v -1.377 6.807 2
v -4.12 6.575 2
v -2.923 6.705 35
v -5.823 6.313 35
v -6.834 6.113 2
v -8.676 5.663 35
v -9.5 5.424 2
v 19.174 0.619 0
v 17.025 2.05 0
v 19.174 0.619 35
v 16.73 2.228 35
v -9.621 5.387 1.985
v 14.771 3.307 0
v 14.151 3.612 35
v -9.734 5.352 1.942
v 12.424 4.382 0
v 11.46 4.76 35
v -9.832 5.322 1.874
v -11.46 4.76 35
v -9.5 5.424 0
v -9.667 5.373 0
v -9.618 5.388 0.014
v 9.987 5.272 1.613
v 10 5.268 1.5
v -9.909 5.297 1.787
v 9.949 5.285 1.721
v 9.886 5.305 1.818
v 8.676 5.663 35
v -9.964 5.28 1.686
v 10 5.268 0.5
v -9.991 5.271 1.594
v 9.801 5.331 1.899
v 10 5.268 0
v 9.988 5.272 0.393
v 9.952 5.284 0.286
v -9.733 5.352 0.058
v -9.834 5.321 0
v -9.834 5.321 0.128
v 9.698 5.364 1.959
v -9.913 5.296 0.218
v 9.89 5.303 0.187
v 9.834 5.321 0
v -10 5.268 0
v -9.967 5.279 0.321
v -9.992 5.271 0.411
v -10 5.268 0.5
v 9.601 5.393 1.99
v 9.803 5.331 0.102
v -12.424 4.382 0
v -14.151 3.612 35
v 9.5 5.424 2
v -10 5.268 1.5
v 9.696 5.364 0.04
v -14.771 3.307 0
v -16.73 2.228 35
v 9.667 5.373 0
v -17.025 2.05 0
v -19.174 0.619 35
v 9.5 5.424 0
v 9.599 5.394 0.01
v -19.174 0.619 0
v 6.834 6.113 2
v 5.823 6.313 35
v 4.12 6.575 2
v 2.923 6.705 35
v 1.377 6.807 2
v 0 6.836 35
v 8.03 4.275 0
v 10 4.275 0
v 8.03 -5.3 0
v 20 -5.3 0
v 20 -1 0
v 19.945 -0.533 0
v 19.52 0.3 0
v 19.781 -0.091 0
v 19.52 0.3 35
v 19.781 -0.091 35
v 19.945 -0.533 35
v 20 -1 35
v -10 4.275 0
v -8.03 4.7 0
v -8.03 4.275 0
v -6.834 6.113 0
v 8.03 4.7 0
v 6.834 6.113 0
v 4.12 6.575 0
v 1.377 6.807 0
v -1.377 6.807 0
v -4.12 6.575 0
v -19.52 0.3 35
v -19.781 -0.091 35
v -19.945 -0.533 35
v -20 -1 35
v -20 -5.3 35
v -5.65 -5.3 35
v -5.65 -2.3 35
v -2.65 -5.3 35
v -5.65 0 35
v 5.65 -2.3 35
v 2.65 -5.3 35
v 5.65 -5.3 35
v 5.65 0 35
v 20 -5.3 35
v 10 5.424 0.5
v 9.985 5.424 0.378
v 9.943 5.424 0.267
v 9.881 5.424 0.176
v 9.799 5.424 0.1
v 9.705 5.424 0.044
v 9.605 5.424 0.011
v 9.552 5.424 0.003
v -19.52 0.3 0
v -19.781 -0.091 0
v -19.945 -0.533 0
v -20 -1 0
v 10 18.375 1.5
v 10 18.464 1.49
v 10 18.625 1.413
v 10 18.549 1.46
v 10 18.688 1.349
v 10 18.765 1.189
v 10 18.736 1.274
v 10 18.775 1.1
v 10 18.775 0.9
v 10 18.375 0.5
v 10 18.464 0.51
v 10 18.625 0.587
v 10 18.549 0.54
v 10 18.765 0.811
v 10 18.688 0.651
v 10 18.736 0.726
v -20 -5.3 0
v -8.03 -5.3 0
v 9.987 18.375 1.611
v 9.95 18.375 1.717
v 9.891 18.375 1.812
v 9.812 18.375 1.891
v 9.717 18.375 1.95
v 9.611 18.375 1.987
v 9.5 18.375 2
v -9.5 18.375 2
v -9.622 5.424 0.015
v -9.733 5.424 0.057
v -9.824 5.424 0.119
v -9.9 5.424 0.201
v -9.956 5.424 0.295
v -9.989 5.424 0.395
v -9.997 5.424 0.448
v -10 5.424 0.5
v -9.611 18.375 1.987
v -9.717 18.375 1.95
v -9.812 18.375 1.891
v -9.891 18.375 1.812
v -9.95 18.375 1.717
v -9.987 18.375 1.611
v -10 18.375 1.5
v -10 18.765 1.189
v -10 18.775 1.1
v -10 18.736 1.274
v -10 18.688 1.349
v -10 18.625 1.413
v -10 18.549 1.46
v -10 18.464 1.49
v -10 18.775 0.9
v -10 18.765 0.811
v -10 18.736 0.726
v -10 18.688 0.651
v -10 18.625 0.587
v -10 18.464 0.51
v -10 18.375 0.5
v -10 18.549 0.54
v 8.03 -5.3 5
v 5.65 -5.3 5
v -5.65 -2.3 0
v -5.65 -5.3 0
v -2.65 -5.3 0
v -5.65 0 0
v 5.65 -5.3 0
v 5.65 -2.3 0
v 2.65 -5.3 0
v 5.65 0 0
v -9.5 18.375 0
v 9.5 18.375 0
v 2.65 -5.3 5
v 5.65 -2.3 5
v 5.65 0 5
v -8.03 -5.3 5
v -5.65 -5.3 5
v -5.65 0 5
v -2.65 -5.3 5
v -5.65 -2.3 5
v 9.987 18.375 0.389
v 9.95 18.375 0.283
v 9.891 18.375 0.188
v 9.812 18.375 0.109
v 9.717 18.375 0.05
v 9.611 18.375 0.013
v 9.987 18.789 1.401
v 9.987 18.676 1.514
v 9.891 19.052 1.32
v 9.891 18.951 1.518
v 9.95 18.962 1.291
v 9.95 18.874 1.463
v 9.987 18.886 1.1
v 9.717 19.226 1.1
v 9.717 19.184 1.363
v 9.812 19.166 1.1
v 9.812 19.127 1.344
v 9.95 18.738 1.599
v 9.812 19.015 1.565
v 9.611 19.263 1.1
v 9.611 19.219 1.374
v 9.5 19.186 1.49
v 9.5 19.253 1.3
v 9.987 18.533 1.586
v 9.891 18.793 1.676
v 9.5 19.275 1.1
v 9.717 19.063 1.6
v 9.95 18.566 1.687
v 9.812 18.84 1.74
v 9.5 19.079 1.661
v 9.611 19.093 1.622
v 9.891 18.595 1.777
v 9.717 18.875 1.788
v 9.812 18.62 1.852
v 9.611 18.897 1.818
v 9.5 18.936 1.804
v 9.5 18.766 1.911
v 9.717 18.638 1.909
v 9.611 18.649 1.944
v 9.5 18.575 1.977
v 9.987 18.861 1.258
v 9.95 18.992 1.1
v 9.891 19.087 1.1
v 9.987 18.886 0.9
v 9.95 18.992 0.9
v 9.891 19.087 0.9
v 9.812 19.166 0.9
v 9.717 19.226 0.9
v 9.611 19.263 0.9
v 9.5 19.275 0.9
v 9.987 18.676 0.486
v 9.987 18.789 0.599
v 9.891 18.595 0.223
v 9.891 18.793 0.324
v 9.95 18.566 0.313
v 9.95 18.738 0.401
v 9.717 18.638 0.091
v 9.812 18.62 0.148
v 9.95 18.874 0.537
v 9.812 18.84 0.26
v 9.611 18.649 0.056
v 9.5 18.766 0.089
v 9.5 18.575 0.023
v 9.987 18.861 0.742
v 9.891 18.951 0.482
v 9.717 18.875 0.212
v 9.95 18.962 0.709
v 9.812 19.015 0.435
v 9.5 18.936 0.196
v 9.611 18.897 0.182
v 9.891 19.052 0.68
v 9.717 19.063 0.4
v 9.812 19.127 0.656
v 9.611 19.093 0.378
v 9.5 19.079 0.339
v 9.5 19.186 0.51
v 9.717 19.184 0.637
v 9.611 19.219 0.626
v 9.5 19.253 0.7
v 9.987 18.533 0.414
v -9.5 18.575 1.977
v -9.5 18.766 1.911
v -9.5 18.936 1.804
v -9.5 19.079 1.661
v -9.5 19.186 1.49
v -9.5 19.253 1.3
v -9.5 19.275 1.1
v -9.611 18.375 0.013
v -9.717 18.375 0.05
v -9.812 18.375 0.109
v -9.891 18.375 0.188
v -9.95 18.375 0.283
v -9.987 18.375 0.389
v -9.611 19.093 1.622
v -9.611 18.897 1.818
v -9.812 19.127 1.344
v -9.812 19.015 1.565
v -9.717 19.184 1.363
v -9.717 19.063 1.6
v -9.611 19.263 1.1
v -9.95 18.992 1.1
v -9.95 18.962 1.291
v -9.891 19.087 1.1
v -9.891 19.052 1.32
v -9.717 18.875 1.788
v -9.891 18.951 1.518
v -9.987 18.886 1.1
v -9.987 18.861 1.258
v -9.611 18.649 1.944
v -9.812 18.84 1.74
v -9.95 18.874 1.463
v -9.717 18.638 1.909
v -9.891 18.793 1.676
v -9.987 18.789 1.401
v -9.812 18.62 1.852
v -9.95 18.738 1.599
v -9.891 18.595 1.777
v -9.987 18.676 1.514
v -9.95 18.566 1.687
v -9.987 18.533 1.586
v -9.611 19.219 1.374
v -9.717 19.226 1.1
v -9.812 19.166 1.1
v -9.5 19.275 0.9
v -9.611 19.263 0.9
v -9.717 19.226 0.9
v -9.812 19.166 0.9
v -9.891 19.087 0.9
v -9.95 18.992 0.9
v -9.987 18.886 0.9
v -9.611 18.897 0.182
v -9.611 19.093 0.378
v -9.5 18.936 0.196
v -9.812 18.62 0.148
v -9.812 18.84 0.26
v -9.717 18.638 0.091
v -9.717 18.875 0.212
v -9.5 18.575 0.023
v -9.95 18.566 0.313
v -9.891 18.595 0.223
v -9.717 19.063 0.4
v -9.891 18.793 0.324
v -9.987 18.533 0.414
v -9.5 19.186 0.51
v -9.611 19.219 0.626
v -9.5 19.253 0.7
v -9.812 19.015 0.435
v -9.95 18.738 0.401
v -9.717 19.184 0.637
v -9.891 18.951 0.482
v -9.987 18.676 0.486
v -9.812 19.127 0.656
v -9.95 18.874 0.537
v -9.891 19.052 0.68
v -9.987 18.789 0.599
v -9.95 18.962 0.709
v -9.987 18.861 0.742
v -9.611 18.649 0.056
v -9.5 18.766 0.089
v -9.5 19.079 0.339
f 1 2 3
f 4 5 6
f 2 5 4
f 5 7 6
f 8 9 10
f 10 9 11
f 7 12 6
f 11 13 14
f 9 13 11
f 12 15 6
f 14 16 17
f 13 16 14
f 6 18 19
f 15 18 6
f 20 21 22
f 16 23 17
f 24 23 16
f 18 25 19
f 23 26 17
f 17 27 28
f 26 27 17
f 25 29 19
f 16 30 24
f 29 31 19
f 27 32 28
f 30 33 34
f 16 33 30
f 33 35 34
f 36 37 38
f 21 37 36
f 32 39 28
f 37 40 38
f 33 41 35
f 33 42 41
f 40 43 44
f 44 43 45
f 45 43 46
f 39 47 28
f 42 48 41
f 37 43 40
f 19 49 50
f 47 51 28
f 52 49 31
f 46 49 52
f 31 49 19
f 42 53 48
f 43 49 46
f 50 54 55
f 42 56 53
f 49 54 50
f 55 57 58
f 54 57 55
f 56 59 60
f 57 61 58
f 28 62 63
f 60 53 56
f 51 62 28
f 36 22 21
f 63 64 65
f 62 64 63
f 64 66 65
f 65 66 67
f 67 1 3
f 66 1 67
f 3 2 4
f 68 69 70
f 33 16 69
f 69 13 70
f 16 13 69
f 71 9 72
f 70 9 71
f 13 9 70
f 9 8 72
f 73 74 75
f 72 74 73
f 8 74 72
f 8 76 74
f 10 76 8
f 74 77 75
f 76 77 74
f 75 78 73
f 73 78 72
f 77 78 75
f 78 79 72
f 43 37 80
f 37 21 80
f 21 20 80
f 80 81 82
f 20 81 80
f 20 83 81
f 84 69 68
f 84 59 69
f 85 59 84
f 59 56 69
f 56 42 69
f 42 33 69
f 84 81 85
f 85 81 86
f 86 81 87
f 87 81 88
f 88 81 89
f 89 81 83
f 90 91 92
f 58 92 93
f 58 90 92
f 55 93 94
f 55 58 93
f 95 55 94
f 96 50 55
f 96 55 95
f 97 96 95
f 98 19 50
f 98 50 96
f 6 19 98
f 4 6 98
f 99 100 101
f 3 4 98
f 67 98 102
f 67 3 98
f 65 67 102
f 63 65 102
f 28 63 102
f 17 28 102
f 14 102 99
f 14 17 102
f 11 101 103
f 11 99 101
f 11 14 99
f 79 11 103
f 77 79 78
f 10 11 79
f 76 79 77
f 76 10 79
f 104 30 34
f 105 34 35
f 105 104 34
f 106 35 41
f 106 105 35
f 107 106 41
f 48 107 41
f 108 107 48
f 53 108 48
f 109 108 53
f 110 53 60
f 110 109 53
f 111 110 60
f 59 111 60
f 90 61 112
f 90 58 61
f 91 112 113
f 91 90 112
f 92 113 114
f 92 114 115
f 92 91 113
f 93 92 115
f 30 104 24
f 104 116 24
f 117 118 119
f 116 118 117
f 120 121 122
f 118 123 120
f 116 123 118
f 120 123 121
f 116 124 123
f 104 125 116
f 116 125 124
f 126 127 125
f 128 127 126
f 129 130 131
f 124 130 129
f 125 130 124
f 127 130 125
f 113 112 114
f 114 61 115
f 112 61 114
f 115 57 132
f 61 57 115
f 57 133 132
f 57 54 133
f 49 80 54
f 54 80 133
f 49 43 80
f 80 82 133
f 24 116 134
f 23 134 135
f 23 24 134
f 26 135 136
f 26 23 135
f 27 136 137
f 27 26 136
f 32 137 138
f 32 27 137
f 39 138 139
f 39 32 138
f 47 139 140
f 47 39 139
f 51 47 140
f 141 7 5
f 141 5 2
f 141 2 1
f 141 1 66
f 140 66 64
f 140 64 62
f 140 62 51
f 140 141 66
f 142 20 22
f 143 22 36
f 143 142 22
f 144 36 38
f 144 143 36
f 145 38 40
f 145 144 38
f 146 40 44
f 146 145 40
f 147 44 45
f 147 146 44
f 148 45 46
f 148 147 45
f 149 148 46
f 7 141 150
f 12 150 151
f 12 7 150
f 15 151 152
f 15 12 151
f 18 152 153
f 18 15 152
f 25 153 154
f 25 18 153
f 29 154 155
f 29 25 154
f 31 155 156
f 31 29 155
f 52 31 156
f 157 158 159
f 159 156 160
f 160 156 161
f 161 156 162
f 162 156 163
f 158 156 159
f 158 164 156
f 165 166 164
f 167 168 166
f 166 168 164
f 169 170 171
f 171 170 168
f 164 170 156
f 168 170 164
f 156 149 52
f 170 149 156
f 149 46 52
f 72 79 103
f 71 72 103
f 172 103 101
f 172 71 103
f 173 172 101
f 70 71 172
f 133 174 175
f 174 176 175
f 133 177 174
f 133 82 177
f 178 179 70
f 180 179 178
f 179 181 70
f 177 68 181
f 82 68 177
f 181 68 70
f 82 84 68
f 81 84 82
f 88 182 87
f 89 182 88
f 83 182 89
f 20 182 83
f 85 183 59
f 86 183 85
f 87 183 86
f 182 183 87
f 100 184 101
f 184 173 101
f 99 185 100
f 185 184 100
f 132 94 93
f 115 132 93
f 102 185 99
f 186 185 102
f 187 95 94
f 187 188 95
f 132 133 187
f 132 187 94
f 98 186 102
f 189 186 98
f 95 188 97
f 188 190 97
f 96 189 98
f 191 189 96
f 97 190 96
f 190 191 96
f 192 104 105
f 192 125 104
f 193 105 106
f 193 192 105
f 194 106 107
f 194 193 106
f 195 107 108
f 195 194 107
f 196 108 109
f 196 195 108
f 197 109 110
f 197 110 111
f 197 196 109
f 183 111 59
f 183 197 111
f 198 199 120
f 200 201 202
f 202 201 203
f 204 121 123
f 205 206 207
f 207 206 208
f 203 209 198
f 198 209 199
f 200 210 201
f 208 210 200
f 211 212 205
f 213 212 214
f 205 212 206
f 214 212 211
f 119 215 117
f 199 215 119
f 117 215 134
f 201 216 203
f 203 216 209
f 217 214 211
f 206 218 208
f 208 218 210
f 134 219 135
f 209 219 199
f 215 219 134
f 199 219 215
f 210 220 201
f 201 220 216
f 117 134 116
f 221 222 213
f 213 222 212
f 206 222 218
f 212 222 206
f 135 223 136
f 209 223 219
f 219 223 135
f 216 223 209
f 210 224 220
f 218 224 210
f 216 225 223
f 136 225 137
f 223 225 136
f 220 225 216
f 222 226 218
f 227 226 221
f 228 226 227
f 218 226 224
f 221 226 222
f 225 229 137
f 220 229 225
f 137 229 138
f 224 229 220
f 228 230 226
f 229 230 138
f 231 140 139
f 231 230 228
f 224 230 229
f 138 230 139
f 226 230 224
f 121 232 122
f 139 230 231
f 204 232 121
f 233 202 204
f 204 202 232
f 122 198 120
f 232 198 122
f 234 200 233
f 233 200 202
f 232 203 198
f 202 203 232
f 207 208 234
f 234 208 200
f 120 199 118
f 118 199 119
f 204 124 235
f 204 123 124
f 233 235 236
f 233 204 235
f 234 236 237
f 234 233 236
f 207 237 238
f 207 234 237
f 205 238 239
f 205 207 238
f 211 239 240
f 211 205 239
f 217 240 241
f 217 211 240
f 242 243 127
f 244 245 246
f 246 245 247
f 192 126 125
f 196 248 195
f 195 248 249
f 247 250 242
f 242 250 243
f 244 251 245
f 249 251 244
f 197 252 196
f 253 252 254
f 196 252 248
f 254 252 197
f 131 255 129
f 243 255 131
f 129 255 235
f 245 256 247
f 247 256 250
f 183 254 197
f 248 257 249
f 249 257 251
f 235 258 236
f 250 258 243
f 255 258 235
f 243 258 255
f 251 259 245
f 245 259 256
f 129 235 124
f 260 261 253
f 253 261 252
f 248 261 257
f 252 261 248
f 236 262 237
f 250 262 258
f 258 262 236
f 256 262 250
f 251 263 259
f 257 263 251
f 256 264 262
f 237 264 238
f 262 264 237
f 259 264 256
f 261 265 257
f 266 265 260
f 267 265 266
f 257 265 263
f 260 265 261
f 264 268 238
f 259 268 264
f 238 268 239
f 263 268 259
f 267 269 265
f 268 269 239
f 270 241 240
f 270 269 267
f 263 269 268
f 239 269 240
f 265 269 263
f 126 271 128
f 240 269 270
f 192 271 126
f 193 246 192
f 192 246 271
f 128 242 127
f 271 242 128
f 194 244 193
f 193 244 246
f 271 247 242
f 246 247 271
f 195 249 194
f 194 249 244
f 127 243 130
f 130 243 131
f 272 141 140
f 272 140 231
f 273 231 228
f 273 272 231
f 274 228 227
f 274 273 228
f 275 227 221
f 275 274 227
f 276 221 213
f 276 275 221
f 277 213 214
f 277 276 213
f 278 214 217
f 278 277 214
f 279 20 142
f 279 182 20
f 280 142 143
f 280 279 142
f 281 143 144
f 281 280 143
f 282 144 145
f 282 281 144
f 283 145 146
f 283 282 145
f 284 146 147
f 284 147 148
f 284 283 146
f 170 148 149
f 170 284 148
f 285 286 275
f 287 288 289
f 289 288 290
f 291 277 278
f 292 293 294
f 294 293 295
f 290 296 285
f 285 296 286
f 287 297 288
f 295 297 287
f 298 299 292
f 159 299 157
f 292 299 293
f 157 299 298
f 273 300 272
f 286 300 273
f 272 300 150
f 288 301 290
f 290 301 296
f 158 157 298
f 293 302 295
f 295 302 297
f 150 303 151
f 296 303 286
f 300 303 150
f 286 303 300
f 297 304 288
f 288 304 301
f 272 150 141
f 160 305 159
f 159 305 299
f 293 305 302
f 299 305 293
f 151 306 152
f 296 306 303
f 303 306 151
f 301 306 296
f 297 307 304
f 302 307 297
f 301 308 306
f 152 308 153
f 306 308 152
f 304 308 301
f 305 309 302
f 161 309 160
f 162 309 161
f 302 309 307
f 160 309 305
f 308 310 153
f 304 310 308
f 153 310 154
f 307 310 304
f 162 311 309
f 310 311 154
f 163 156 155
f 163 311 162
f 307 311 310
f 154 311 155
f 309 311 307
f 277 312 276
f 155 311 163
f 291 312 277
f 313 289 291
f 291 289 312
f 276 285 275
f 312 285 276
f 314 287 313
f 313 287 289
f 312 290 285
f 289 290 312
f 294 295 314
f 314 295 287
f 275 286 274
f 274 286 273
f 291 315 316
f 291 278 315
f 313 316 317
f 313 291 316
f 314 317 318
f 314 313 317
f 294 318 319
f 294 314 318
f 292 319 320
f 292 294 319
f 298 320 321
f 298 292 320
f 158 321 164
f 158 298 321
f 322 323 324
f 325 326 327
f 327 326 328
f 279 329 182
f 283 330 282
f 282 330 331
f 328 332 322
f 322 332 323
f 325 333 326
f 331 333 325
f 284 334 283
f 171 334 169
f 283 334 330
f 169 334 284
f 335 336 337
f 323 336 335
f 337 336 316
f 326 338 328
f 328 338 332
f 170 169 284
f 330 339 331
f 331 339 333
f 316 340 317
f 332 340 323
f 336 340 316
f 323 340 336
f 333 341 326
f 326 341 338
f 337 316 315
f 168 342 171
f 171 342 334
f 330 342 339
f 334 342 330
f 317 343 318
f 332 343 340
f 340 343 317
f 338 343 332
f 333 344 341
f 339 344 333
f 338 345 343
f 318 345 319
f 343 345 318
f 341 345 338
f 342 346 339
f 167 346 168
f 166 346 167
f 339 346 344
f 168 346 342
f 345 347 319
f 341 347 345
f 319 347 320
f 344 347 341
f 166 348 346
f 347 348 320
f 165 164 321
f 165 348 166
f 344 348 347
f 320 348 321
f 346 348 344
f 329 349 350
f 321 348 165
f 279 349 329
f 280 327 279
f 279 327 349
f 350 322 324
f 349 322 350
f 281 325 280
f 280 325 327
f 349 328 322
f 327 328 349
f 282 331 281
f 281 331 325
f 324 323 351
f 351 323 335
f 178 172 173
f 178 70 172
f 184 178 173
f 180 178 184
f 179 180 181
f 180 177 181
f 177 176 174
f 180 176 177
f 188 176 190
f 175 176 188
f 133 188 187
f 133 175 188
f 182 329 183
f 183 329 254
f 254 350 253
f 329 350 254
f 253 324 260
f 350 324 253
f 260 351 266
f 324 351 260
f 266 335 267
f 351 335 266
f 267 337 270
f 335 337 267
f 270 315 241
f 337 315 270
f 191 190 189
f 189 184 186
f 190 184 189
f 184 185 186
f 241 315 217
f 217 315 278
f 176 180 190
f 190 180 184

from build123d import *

# Parameters (mm, degrees)
PAD_DEPTH    = 35
SKETCH001_W  = 20
SKETCH001_H  = 15
PAD001_DEPTH = 2
FILLET_R     = 0.9
FILLET001_R  = 0.5
FILLET002_R  = 2
SKETCH002_W  = 16.059546
SKETCH002_H  = 5
PAD002_DEPTH = 10


with BuildPart() as part:
    # Sketch → Pad (new body)
    with BuildSketch(Plane.XY):
        with BuildLine():
            ThreePointArc((20, 0), (0, 6.835898), (-20, 0))
            Line((-20, -5.3), (-20, 0))
            Line((-5.65, -5.3), (-20, -5.3))
            Line((-5.65, -5.3), (-5.65, 0))
            Line((-5.65, 0), (5.65, 0))
            Line((5.65, 0), (5.65, -5.3))
            Line((20, -5.3), (5.65, -5.3))
            Line((20, 0), (20, -5.3))
        make_face()
        Polygon((-2.65, -5.3), (-5.65, -2.3), (-5.65, -5.3), align=None)
        Polygon((5.65, -5.3), (5.65, -2.3), (2.65, -5.3), align=None)
    extrude(amount=PAD_DEPTH)

    # Sketch001 (on Face13 of Pad) → Pad001 (join)
    with BuildSketch(Plane(origin=(0, 0, 0), x_dir=(1, 0, 0), z_dir=(0, 0, -1))):
        with Locations((0, -11.775117)):
            Rectangle(SKETCH001_W, SKETCH001_H)
    extrude(amount=-PAD001_DEPTH)

    # Fillet
    fillet_edges = [part.edges().sort_by_distance(p)[0] for p in [
        (0, 19.275117, 0),
        (0, 19.275117, 2),
    ]]
    fillet(fillet_edges, radius=FILLET_R)

    # Fillet001
    fillet001_edges = [part.edges().sort_by_distance(p)[0] for p in [
        (10, 19.275117, 1),
        (-10, 19.275117, 1),
    ]]
    fillet(fillet001_edges, radius=FILLET001_R)

    # Fillet002
    fillet002_edges = [part.edges().sort_by_distance(p)[0] for p in [
        (20, 0, 17.5),
        (-20, 0, 17.5),
    ]]
    fillet(fillet002_edges, radius=FILLET002_R)

    # Sketch002 (on Face24 of Fillet002) → Pad002 (join)
    with BuildSketch(Plane.XZ.offset(5.3)):
        with Locations((0, 2.5)):
            Rectangle(SKETCH002_W, SKETCH002_H)
    extrude(amount=-PAD002_DEPTH)


solid = part.part
